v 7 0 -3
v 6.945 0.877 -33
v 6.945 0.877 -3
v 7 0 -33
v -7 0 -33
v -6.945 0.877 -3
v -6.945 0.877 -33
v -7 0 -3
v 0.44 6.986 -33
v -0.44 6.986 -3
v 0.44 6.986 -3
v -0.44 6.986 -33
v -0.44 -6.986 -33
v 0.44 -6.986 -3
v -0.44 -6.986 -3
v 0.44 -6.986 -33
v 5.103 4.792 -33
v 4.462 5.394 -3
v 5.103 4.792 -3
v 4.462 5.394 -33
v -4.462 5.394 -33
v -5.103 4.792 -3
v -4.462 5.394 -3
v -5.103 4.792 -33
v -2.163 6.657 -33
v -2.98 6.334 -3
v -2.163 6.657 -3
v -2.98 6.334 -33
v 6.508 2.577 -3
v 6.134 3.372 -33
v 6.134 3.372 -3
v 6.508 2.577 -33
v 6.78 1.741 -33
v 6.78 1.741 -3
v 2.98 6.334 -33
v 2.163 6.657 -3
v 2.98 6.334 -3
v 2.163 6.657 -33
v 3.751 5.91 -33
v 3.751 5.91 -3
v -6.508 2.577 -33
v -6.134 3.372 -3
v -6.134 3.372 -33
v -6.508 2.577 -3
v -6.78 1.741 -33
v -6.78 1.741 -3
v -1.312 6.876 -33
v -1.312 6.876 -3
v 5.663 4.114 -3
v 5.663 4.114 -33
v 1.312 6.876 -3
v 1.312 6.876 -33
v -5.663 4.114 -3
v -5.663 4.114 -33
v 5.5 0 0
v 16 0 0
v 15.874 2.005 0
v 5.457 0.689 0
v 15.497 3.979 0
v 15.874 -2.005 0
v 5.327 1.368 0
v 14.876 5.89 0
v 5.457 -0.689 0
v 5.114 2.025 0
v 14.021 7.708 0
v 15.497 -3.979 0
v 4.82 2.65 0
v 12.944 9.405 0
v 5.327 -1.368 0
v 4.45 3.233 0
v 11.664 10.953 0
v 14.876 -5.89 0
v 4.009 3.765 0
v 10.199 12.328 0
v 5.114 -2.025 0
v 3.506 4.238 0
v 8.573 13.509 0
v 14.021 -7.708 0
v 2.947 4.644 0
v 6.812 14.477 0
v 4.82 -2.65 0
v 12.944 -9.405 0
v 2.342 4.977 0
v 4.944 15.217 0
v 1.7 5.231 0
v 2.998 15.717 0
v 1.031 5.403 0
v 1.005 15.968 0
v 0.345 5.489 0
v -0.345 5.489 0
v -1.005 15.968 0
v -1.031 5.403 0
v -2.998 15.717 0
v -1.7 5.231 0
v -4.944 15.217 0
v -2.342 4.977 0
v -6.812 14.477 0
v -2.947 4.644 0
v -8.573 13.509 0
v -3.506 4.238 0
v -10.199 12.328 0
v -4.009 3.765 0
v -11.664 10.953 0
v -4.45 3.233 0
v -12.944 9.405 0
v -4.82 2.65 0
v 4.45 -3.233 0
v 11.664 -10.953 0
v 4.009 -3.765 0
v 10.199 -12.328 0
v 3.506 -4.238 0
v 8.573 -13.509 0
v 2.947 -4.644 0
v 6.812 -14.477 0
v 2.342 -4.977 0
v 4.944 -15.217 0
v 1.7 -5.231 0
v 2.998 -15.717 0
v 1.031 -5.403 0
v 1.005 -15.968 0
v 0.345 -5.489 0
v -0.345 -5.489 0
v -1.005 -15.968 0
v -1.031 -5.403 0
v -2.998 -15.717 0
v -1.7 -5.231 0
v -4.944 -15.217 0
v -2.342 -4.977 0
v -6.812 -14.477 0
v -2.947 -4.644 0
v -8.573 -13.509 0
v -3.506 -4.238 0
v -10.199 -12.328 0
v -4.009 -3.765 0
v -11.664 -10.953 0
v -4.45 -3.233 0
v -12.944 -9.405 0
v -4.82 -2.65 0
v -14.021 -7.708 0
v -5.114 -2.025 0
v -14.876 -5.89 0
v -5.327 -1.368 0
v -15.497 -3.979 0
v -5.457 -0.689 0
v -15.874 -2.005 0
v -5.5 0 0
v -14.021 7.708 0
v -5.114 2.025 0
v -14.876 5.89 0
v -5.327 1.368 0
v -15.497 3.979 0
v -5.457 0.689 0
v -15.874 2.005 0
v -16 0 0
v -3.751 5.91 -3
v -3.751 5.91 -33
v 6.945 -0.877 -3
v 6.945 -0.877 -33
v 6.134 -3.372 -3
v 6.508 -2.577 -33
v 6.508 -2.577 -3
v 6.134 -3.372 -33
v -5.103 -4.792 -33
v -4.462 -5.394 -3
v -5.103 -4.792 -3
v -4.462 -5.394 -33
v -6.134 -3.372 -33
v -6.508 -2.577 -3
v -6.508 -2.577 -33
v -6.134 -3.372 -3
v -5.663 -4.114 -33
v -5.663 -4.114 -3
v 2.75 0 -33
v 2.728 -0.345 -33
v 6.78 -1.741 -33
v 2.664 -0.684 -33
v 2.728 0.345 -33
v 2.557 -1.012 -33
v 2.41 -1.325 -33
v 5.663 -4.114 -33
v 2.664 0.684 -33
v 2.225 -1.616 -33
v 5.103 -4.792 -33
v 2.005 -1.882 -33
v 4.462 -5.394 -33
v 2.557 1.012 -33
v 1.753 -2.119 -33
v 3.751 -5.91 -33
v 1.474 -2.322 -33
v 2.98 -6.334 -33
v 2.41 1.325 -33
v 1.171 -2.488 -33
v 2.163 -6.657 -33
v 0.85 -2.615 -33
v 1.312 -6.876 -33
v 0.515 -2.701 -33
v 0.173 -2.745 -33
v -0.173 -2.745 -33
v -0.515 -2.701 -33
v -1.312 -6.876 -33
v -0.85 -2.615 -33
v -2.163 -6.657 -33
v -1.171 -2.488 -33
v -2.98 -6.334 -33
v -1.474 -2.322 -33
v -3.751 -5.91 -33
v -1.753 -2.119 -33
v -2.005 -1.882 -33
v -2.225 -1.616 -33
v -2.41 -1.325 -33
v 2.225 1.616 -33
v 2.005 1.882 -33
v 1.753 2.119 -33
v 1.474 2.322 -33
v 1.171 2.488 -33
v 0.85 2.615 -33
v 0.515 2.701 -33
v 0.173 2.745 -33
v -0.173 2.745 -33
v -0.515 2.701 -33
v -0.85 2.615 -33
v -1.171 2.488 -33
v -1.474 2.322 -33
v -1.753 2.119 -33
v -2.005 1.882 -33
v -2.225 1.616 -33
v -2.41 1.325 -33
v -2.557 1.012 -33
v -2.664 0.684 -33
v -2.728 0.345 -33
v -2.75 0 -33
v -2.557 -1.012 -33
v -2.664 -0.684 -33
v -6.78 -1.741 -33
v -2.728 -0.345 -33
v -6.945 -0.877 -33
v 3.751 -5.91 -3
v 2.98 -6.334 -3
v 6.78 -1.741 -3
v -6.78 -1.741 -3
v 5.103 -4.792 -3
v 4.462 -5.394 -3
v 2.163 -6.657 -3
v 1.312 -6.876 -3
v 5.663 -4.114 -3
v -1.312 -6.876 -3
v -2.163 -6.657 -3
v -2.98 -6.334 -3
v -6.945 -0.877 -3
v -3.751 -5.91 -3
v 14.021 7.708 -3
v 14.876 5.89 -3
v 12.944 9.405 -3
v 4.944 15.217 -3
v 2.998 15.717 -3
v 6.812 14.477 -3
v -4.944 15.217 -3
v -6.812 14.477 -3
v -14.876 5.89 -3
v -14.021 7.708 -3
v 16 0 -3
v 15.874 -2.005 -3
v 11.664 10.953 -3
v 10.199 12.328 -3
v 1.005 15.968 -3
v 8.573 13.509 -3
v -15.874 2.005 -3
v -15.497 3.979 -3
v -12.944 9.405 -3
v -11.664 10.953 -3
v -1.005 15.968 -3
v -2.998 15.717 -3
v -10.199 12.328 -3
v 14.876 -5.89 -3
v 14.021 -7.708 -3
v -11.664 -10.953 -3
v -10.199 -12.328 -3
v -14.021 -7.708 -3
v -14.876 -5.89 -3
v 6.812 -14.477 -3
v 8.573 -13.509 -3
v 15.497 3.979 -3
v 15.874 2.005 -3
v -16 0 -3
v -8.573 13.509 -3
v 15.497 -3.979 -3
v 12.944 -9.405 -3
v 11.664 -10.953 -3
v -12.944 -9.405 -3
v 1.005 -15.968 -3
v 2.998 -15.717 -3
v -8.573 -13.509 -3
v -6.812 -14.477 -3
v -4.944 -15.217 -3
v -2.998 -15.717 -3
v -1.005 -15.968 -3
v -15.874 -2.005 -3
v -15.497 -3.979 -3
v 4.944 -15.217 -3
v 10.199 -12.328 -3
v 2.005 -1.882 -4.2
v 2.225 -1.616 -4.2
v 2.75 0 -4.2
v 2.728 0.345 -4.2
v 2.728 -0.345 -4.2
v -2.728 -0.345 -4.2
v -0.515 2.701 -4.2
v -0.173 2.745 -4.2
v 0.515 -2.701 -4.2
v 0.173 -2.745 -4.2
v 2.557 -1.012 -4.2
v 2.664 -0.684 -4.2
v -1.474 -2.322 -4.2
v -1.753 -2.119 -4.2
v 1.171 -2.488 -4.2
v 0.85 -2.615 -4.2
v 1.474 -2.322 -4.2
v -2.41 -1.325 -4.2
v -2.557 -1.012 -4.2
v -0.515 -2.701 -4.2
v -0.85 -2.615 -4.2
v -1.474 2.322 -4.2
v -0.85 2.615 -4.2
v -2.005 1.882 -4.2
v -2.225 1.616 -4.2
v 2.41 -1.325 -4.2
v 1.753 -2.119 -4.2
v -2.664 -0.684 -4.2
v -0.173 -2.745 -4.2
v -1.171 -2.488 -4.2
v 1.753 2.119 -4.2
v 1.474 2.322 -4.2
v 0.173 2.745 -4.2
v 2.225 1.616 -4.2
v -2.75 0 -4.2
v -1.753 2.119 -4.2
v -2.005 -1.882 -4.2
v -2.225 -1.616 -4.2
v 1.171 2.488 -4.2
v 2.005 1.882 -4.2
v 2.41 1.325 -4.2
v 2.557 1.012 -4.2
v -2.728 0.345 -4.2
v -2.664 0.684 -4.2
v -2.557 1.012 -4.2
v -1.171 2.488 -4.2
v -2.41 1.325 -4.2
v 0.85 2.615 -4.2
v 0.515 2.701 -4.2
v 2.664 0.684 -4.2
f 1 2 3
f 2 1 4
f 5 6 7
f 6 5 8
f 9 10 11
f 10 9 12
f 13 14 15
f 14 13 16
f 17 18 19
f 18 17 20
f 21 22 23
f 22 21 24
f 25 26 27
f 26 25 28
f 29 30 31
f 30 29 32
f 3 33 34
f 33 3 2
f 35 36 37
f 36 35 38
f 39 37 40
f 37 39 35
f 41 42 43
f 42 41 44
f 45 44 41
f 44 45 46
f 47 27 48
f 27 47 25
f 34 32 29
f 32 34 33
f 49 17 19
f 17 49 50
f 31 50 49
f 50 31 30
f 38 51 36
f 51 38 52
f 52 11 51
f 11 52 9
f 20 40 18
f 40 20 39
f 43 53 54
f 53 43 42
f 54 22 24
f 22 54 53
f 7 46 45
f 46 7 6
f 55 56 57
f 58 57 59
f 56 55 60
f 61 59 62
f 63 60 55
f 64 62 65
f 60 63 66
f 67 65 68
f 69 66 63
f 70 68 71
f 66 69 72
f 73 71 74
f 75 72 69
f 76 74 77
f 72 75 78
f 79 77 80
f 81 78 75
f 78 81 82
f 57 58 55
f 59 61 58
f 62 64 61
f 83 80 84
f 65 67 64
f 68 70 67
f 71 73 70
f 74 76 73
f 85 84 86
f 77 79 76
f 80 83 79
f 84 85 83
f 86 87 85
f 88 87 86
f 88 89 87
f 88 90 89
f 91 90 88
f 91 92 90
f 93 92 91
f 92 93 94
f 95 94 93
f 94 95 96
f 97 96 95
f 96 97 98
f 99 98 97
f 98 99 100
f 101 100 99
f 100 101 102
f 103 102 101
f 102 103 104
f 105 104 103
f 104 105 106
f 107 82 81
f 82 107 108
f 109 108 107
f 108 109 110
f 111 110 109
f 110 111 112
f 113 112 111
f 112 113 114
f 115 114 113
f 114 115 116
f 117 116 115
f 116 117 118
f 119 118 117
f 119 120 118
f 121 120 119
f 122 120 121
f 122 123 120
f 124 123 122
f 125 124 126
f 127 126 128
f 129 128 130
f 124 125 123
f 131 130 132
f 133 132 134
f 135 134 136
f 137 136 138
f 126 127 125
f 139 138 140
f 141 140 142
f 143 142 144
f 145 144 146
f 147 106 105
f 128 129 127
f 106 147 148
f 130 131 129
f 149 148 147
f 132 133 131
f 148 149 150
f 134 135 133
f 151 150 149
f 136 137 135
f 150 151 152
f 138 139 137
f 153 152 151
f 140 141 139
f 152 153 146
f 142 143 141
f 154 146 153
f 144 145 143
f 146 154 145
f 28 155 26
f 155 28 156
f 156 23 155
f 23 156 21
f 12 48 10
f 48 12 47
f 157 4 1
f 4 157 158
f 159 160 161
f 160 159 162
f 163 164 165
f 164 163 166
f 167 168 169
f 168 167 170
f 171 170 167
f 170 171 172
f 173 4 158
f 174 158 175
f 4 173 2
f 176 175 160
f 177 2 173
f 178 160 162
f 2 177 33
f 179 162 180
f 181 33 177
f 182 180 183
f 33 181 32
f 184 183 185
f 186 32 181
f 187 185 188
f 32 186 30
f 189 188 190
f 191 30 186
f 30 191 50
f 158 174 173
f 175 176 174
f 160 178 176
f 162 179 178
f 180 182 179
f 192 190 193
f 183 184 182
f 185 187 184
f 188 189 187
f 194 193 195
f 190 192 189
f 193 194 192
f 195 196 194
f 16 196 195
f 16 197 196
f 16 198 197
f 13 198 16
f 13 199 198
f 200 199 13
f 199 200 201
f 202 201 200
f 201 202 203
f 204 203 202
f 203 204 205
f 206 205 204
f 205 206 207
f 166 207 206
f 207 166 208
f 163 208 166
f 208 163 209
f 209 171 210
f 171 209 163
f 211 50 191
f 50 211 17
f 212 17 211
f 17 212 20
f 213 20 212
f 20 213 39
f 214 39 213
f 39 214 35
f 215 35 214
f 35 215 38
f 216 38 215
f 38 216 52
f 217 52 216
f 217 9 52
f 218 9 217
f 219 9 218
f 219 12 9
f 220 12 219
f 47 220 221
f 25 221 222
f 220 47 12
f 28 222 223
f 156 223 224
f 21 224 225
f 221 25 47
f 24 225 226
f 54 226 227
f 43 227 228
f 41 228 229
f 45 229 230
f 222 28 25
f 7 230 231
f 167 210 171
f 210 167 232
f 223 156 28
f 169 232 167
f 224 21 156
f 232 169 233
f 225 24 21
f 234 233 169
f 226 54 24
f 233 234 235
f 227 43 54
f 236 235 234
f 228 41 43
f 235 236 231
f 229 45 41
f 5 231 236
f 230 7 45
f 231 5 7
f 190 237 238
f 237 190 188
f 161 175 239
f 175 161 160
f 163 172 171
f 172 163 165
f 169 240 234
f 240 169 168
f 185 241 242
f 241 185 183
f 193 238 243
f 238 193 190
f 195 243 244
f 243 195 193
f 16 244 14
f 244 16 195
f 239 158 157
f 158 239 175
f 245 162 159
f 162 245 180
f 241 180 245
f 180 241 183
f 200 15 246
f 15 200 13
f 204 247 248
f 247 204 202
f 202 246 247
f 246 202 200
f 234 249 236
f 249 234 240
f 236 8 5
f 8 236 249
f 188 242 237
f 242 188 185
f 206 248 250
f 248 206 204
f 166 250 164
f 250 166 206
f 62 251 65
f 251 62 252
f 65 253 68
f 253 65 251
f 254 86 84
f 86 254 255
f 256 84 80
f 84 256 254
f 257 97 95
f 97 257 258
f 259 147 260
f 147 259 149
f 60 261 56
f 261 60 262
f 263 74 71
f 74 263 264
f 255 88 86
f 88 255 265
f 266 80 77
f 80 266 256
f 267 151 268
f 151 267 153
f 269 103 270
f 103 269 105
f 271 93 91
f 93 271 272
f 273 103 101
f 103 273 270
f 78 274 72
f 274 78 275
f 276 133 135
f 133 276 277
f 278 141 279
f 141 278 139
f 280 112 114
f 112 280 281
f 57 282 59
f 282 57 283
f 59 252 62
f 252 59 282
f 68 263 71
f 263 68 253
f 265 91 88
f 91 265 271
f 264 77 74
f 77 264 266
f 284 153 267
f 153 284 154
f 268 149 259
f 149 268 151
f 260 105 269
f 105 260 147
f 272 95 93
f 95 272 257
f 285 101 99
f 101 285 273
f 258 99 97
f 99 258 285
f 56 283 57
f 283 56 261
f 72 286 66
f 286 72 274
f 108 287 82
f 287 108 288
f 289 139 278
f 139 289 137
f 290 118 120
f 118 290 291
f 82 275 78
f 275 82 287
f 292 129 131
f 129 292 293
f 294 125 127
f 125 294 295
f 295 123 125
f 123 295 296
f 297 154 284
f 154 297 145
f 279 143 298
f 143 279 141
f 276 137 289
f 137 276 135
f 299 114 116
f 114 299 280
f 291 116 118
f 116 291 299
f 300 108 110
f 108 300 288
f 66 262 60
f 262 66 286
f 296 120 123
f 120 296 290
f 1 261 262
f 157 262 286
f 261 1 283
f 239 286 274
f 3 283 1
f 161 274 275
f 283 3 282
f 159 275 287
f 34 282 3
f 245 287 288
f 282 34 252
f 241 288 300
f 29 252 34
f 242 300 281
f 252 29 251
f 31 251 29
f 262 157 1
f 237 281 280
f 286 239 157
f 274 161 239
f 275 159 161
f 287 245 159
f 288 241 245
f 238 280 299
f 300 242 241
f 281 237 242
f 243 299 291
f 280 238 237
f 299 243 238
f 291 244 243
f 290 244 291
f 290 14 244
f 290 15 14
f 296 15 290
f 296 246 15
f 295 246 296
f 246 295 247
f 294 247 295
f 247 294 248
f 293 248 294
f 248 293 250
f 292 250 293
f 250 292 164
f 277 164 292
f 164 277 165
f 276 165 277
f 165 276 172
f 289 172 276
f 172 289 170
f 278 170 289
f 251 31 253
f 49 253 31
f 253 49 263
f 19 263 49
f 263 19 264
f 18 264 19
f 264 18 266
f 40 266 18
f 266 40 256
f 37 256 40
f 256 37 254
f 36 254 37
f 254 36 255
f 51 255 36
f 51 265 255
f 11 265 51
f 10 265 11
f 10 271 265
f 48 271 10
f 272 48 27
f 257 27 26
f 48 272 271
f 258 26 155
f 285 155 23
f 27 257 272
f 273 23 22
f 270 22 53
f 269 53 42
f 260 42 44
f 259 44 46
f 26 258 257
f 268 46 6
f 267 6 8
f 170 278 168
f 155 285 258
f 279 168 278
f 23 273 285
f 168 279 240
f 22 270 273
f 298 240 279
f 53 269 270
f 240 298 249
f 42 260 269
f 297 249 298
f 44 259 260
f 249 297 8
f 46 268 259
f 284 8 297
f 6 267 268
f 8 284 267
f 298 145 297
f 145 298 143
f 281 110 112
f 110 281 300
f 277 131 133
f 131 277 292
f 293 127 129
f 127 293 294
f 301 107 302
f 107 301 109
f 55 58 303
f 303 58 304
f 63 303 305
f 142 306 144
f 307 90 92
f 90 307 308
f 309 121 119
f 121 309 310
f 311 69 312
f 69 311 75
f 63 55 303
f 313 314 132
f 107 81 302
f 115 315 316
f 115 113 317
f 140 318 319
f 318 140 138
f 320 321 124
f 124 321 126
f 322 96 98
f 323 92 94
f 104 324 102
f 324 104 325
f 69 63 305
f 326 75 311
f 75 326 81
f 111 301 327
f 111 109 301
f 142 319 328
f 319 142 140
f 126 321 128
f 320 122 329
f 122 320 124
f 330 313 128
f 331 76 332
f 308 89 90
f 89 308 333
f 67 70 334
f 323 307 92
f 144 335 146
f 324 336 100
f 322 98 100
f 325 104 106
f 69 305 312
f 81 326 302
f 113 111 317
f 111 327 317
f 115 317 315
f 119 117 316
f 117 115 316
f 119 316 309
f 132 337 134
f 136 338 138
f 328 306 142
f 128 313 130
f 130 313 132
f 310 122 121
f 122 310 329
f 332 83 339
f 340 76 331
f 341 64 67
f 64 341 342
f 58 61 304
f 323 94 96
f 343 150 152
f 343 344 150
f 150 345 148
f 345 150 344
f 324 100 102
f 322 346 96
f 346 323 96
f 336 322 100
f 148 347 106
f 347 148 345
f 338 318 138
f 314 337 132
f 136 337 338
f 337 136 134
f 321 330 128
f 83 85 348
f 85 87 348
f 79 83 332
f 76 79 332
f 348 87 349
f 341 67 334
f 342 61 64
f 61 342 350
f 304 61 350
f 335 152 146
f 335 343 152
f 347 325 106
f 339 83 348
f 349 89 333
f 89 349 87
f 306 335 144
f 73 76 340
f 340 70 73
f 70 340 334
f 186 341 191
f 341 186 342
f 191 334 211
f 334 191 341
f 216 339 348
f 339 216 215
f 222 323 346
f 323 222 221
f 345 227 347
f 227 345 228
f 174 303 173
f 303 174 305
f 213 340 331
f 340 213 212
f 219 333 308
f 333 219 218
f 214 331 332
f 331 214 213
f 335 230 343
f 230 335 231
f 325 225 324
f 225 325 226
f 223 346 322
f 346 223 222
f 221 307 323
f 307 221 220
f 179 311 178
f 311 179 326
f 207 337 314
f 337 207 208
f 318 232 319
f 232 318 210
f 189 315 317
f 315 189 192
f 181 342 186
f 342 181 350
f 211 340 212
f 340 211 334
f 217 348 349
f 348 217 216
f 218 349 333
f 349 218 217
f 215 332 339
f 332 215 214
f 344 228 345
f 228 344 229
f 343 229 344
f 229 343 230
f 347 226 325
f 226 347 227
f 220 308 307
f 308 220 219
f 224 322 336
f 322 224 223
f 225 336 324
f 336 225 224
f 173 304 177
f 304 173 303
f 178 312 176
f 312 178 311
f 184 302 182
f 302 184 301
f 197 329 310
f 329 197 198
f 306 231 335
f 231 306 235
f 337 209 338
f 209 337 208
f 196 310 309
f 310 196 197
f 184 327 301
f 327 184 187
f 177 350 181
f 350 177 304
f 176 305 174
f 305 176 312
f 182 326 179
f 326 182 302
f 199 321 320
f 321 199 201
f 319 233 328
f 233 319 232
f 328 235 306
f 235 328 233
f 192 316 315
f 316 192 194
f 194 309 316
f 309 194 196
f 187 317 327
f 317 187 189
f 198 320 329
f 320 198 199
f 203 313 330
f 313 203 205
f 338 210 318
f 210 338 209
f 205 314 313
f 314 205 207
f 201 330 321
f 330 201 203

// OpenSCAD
$fn = 50;


difference() {
	union() {
		translate(v = [0, 0, -33.0000000000]) {
			cylinder(h = 33, r = 7.0000000000);
		}
		translate(v = [0, 0, -3.0000000000]) {
			cylinder(h = 3, r = 16.0000000000);
		}
	}
	union() {
		translate(v = [0, 0, 0]) {
			rotate(a = [0, 0, 0]) {
				difference() {
					union() {
						#translate(v = [0, 0, -33.0000000000]) {
							cylinder(h = 33, r = 2.2500000000);
						}
						#translate(v = [0, 0, -4.2000000000]) {
							cylinder(h = 4.2000000000, r = 7.0000000000, r1 = 2.7500000000, r2 = 5.5000000000);
						}
						#translate(v = [0, 0, -33.0000000000]) {
							cylinder(h = 33, r = 2.7500000000);
						}
						#translate(v = [0, 0, -33.0000000000]) {
							cylinder(h = 33, r = 2.2500000000);
						}
					}
					union();
				}
			}
		}
	}
}
